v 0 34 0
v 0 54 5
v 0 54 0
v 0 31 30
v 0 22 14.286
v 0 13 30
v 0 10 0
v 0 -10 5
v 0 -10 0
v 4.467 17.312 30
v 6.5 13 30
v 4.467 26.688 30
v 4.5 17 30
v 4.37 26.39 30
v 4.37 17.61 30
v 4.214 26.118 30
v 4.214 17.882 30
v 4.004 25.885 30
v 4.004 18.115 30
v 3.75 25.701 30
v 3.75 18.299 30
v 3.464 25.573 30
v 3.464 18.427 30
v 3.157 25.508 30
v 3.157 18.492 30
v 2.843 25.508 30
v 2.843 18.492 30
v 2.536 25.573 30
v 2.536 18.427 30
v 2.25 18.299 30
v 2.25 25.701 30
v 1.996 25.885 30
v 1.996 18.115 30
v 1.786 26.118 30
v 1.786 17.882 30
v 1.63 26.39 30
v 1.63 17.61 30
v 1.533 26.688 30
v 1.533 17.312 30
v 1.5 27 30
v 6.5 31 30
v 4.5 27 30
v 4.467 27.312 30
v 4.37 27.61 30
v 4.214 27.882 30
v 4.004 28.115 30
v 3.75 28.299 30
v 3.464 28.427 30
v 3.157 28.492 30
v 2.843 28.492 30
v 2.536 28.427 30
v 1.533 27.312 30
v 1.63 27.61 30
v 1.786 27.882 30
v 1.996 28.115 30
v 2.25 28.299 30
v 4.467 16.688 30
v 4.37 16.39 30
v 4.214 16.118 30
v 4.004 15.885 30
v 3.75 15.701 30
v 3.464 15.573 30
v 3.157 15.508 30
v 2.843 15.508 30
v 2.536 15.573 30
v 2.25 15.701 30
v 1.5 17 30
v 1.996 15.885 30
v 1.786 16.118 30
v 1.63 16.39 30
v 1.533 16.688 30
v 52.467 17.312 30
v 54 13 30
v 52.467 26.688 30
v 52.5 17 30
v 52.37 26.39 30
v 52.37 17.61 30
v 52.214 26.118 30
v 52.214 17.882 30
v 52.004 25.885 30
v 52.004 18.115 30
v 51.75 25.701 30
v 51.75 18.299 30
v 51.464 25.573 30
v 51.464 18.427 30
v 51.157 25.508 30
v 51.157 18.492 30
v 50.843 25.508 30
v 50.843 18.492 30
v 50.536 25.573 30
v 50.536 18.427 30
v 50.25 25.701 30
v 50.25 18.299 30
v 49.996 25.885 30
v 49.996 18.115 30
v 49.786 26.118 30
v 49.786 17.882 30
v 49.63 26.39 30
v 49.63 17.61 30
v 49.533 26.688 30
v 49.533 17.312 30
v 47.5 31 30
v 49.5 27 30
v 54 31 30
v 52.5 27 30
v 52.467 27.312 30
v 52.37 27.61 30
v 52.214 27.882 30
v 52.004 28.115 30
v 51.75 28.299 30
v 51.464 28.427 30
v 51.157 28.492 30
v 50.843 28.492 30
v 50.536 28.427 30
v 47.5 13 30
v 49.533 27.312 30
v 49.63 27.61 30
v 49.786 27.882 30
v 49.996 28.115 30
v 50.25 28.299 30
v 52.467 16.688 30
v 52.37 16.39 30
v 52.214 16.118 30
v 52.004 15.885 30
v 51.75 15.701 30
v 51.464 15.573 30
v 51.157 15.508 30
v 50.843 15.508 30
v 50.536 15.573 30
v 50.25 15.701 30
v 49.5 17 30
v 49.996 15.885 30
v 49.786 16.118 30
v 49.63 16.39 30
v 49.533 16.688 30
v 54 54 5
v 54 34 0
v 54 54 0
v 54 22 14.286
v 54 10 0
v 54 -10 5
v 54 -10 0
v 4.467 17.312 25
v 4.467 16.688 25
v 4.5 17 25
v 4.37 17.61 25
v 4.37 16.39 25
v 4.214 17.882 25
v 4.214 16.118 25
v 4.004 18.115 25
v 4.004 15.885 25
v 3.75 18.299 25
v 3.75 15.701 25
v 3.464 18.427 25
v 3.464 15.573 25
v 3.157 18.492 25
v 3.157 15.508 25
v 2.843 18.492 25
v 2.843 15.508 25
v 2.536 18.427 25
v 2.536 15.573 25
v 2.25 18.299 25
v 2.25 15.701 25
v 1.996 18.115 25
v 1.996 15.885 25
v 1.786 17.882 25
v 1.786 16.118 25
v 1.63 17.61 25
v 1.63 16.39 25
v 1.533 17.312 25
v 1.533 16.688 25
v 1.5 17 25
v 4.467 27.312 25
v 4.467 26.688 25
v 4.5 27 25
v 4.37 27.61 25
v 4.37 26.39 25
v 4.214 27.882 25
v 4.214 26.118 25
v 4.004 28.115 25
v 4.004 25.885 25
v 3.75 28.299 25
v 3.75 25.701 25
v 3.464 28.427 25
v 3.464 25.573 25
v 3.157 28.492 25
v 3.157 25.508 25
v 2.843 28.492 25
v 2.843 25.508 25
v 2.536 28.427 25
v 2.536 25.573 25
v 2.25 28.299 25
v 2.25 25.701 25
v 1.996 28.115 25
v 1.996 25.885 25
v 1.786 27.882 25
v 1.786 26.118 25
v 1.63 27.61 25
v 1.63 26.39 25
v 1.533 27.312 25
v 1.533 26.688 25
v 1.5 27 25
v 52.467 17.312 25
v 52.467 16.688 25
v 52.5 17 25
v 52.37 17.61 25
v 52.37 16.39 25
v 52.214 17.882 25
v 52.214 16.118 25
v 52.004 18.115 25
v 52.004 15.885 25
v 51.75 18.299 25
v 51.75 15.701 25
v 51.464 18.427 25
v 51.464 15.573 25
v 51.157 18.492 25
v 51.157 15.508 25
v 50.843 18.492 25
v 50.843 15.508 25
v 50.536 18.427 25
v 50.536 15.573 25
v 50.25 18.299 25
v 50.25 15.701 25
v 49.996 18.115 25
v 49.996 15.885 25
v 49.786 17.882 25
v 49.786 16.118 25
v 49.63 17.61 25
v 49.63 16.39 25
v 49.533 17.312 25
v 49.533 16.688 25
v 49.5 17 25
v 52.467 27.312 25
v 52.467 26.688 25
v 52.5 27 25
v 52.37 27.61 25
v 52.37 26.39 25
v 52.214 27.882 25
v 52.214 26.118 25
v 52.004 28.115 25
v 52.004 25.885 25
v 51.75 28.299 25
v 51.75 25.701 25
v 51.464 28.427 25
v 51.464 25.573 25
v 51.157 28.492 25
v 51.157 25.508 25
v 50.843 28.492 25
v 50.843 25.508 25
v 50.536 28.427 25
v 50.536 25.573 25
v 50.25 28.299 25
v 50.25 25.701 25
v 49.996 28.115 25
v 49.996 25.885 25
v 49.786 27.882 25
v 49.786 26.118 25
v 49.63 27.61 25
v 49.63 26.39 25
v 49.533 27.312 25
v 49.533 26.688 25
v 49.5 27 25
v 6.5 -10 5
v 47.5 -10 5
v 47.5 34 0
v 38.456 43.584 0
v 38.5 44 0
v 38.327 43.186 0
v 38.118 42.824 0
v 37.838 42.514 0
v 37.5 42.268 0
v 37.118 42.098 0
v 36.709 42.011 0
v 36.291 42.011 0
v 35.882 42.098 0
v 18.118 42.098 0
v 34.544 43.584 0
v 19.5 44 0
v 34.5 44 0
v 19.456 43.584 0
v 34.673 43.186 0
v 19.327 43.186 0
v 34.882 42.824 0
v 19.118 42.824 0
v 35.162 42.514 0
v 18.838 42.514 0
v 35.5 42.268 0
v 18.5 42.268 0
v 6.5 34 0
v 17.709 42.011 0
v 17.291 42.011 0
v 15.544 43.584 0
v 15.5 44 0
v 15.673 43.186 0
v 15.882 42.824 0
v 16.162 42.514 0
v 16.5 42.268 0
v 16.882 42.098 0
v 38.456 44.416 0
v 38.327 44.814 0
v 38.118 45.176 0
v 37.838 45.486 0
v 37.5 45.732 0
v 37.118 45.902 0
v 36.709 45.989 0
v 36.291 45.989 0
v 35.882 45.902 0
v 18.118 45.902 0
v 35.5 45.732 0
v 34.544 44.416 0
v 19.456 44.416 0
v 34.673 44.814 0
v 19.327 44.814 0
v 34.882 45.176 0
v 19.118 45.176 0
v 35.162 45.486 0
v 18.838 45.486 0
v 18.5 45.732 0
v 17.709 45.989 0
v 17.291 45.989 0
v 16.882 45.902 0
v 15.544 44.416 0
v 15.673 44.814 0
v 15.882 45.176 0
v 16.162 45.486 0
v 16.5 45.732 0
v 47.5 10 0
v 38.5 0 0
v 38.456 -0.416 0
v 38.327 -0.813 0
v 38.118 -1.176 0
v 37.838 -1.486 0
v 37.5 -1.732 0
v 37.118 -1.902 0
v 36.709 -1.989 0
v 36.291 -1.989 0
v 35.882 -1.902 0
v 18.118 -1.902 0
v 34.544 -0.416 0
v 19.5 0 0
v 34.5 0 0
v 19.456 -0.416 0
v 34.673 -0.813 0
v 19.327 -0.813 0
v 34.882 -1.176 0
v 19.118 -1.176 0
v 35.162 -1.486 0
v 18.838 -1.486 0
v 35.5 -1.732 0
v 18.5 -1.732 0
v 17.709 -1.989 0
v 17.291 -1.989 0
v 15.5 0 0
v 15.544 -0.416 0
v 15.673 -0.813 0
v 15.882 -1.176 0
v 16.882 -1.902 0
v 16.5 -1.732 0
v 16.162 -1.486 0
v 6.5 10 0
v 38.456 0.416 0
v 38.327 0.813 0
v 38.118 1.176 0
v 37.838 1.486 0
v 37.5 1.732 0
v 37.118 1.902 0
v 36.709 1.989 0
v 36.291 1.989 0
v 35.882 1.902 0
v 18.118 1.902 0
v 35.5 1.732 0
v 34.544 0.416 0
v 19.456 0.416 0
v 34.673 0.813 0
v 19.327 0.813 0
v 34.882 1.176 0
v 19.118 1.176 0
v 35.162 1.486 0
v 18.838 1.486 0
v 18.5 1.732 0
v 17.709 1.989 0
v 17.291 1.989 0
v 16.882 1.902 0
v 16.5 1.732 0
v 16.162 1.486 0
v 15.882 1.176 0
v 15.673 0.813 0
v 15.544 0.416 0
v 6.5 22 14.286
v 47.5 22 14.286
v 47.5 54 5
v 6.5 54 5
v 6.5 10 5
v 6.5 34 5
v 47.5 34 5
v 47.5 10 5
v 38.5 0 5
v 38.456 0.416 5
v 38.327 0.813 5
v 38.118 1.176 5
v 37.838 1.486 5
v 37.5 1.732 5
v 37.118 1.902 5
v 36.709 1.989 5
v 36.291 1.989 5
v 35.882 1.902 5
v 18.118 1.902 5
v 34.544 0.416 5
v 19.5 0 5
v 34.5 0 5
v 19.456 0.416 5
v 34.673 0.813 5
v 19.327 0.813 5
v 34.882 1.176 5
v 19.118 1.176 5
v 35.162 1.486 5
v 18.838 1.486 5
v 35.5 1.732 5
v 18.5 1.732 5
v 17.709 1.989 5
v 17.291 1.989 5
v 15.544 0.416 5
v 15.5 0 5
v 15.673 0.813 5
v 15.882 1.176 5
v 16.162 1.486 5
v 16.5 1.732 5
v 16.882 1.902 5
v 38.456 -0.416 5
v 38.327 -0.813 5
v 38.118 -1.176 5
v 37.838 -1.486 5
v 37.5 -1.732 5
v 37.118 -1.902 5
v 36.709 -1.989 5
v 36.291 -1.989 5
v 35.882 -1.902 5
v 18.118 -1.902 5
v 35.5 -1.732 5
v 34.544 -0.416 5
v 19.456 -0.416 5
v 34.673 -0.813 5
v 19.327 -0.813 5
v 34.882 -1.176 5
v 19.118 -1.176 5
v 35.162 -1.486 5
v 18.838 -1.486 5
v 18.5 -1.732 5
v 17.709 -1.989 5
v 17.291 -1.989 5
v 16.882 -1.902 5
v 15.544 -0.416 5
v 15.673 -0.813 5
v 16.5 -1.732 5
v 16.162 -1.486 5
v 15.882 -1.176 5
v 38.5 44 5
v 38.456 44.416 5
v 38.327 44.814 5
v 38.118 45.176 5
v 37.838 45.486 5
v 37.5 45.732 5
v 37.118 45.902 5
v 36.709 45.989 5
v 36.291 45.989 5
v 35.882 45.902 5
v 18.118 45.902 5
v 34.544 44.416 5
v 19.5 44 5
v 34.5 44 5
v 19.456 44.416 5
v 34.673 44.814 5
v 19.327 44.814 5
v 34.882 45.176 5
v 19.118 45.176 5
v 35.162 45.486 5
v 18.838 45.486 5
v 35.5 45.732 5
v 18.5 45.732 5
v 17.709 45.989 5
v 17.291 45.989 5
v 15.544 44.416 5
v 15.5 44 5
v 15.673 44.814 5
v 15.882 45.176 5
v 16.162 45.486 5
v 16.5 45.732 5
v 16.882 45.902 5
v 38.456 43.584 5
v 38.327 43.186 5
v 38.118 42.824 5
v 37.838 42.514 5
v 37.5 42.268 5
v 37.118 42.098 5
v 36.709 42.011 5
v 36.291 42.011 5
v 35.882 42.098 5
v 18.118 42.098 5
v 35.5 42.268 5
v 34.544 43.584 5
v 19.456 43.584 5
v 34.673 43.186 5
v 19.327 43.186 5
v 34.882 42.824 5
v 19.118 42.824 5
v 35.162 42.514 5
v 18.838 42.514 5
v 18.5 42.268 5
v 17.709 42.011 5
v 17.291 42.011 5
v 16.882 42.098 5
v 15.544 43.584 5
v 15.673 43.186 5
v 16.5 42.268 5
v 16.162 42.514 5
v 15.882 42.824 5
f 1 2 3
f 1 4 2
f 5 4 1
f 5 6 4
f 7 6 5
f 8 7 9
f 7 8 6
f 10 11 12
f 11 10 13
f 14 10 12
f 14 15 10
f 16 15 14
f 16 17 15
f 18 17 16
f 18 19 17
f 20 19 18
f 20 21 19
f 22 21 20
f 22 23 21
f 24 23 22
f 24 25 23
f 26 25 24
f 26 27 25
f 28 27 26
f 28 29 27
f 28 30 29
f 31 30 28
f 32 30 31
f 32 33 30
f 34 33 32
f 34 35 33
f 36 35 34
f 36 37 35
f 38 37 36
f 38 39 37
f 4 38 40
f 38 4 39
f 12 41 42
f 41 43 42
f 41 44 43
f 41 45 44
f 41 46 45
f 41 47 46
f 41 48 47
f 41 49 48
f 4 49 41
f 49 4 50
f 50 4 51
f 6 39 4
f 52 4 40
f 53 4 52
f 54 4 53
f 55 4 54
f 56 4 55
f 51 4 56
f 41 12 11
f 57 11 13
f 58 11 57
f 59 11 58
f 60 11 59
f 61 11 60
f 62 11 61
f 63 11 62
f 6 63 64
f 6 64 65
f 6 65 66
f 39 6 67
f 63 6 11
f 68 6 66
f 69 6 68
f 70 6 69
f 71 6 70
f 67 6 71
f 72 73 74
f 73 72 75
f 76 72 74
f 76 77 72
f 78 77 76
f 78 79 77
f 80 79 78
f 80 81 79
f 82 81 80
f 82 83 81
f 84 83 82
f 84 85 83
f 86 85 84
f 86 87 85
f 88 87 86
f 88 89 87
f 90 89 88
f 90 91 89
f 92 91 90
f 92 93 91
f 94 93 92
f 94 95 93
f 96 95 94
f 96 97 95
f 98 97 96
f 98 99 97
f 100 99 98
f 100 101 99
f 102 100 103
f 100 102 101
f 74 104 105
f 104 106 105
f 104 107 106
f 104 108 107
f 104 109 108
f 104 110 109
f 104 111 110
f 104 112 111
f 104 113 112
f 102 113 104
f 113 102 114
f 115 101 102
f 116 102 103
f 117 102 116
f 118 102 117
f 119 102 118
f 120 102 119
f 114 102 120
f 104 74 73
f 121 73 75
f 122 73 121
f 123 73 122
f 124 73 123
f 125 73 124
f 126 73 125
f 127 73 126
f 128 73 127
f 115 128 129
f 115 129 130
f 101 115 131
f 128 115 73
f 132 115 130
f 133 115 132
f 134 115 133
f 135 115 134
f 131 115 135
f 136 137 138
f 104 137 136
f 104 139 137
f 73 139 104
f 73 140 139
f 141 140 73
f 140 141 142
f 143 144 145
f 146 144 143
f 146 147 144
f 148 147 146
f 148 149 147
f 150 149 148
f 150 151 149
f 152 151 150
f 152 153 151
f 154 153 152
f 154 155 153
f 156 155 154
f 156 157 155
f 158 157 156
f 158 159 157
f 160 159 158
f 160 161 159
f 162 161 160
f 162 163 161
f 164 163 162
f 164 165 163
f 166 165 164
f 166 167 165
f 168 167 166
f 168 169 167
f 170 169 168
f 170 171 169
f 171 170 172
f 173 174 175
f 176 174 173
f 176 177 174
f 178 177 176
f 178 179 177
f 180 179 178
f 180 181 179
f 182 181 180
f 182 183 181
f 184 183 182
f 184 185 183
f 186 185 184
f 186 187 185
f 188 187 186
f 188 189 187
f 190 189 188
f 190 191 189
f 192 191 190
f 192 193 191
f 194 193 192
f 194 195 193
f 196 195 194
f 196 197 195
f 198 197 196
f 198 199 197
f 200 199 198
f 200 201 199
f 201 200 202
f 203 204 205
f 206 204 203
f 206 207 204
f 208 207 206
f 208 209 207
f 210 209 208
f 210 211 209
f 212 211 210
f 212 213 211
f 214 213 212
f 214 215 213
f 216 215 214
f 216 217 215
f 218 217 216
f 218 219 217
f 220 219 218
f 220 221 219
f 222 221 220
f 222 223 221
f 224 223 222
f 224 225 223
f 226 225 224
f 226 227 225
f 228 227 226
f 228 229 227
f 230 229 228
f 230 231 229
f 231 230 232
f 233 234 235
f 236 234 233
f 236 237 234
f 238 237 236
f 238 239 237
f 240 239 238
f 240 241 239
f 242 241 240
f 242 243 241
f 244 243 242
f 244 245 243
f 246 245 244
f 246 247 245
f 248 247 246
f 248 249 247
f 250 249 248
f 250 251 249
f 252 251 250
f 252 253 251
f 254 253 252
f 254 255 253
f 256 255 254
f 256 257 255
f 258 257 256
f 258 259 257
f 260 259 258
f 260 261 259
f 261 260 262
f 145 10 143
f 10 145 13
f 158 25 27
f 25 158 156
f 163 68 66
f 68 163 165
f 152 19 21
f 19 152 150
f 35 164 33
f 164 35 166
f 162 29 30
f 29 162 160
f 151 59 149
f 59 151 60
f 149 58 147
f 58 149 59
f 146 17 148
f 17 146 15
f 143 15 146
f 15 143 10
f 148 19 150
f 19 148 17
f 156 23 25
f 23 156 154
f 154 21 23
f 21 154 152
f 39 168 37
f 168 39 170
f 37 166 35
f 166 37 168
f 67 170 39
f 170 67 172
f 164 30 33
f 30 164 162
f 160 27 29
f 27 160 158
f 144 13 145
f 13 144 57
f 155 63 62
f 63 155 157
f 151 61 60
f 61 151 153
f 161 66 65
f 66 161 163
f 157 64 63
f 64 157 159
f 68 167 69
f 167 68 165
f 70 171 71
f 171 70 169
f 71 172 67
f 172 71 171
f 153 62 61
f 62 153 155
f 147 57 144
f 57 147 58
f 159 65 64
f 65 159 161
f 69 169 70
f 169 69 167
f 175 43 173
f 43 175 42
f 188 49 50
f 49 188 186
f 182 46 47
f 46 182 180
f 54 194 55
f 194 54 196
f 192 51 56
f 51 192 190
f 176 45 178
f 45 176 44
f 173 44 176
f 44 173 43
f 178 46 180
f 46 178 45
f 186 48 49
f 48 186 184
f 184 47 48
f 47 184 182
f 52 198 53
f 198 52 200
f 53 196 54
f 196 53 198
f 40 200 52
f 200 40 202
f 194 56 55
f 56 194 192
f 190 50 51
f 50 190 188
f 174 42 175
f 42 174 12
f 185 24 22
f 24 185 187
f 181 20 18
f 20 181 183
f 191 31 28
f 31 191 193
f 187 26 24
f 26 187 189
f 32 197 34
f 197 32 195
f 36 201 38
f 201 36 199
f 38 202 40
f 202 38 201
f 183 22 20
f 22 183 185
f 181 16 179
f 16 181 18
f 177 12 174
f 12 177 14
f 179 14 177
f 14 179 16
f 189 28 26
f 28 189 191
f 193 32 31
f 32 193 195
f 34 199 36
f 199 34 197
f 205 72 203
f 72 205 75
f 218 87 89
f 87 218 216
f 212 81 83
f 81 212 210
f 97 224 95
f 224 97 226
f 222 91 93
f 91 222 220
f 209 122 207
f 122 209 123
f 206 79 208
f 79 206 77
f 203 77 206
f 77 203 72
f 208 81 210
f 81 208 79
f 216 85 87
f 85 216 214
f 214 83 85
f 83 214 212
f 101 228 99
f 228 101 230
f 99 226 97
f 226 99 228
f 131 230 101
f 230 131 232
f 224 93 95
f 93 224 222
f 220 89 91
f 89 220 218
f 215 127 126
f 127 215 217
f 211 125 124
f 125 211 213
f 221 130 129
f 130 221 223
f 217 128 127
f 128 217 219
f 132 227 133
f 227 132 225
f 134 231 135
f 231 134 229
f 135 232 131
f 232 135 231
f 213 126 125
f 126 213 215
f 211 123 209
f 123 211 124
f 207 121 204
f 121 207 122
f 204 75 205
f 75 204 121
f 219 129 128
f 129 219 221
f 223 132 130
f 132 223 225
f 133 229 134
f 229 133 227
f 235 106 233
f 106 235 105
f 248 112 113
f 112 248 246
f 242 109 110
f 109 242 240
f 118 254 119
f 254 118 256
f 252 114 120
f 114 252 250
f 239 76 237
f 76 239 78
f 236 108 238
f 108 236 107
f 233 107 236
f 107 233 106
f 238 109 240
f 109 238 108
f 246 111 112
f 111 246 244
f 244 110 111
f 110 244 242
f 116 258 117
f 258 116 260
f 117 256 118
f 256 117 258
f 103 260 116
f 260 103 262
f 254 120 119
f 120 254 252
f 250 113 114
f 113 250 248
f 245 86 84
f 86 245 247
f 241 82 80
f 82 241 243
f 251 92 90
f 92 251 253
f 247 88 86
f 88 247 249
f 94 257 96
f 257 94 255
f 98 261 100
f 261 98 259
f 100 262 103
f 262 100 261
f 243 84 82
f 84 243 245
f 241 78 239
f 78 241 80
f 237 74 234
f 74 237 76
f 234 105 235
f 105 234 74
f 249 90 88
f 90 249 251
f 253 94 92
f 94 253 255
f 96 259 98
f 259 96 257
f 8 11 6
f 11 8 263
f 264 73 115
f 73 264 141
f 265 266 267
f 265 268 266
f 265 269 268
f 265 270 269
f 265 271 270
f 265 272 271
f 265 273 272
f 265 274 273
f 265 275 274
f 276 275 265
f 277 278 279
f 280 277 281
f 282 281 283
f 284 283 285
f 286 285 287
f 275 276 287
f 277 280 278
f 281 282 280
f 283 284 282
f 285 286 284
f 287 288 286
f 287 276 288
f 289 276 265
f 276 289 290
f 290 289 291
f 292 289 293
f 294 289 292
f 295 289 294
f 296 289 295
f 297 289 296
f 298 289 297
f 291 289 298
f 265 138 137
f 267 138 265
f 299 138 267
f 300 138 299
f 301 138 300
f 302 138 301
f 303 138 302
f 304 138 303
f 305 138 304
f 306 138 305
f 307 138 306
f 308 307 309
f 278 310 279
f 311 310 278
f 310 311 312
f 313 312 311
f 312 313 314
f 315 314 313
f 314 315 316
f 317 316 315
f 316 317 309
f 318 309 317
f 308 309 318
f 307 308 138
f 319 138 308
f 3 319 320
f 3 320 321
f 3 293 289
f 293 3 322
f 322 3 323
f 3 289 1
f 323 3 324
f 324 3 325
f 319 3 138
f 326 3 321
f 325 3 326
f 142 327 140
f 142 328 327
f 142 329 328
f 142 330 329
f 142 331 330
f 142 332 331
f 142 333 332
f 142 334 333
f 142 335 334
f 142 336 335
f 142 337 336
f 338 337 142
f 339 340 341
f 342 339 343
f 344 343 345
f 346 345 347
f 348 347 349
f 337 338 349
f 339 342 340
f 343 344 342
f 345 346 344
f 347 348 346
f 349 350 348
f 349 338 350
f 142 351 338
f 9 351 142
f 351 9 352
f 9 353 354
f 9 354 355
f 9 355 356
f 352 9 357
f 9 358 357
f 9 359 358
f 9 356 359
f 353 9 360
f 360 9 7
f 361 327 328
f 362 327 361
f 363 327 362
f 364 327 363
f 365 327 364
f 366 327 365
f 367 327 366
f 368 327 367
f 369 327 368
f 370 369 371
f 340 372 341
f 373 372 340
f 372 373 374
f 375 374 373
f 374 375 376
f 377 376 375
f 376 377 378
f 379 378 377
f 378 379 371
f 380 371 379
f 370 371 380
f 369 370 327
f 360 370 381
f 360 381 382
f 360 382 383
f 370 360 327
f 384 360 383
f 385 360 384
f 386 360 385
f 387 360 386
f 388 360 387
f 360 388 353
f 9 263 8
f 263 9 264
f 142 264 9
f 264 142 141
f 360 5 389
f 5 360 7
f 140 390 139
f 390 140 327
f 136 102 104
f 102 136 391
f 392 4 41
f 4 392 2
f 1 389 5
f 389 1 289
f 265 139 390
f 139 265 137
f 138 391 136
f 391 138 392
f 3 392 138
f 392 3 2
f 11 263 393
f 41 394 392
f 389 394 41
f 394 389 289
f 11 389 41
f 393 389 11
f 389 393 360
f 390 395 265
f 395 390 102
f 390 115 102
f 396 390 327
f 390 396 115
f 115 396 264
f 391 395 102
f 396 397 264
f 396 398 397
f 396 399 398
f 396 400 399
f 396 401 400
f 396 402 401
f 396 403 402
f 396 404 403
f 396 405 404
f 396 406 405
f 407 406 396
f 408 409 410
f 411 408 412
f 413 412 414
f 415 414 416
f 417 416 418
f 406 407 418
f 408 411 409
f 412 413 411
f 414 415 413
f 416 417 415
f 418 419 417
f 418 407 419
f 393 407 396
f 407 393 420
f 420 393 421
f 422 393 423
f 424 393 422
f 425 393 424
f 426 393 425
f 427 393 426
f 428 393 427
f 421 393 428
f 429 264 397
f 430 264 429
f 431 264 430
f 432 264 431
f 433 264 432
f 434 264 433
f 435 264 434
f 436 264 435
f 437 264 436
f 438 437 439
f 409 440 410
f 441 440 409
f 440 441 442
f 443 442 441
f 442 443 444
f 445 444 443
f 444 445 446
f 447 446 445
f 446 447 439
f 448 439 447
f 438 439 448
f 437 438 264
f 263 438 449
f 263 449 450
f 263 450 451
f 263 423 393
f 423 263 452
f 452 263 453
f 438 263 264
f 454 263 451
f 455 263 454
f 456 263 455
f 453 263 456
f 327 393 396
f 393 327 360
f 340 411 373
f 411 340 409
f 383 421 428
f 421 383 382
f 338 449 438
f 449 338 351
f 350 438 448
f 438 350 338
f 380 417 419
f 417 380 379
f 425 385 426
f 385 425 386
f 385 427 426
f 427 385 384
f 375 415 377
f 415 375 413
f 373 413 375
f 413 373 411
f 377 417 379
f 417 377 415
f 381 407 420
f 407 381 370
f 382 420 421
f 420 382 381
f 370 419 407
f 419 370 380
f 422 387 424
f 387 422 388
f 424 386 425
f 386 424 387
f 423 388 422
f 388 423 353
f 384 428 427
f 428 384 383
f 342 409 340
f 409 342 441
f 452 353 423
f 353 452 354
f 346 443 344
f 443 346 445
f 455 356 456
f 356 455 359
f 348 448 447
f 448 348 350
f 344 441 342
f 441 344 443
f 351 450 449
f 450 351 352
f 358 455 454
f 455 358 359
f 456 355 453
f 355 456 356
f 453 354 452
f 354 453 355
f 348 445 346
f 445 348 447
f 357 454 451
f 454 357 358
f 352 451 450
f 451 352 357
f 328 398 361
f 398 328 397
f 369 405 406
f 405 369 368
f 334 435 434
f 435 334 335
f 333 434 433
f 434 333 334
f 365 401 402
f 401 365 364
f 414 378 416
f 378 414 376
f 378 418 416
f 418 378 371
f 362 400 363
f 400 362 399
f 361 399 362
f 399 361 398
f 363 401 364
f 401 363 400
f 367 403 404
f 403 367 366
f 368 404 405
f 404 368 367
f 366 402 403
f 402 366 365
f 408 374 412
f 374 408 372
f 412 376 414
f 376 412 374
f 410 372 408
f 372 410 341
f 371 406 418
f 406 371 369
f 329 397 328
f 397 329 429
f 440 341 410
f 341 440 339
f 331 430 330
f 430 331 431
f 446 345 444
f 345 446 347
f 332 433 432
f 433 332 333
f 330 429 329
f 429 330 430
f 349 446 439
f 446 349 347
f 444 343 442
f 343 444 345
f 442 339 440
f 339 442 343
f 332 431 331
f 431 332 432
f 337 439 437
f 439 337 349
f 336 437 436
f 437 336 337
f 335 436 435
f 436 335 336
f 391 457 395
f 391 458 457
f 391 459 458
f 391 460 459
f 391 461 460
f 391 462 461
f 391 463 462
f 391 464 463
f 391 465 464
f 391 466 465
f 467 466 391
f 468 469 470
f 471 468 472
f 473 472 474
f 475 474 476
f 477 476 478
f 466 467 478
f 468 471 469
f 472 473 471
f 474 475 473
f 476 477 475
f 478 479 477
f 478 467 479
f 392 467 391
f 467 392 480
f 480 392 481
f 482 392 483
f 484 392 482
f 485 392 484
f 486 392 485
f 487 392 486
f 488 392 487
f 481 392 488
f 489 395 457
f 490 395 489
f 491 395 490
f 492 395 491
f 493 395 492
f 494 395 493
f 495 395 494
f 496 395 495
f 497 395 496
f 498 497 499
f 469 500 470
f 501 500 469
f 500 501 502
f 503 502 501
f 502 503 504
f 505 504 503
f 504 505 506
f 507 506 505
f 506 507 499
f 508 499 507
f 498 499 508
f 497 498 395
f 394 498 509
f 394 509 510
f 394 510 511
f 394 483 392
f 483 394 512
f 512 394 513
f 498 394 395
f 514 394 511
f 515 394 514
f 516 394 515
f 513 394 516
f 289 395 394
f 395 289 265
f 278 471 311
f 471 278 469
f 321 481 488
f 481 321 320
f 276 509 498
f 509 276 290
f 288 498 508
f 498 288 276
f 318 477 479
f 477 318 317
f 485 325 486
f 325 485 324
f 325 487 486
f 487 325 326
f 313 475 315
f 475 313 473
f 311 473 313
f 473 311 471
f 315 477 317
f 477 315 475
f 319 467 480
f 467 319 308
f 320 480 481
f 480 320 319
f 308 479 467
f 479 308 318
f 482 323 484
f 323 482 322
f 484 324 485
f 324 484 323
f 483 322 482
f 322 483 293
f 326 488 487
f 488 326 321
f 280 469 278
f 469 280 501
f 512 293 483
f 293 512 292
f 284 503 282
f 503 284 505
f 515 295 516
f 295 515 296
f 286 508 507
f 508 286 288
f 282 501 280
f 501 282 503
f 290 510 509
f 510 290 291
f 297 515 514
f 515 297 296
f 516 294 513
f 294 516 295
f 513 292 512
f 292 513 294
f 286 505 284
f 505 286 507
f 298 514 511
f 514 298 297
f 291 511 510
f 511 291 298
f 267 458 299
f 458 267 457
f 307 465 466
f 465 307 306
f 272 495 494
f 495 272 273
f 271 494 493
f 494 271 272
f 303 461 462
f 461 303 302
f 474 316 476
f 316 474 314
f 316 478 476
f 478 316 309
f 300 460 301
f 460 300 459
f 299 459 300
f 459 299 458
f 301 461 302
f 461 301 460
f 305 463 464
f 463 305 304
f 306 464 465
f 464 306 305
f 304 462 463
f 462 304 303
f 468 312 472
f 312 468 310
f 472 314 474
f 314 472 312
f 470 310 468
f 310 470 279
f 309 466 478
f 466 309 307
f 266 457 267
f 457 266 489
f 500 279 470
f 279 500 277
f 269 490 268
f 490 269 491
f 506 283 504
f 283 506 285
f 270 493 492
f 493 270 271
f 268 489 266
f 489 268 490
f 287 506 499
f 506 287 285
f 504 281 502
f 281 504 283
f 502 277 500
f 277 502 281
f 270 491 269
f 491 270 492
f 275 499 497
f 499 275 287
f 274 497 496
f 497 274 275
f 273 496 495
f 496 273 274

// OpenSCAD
//general
$fn = 30;                        //convexity of general curved faces
thickness = 5;                   //thickness of the flat parts
length = 54;

//bottom plate (feet)
plate_hole_diameter = 4;            //diameter of holes in metal bottom plate
plate_hole_width = 19;             //shortest distance between the pairs of holes in plate
plate_hole_length = 44;            //long distance between the pairs of holes in botto
plate_feet_width = 20;             //width of the pads that connect the short distanced screws
plate_feet_length = length;            //length of the feet
//servo pad
servo_hole_diameter = 3;           //diamter of holes for servo attachment
servo_hole_width = 10;             //width of short distance between hole so same side of servo
servo_hole_length = 48;            //length of long distance between holes on either side of servo
servo_pad_width = 18;              //width of servo pad
servo_pad_length = length;         //length of servo pad
servo_pad_height = 25;             //height of servo pad
servo_length = 41;

module foot(){
   translate([0, plate_feet_width/-2, 0])
   difference(){
      cube([plate_feet_length, plate_feet_width, thickness]);
      translate([plate_feet_length/2 - plate_hole_width/2, plate_feet_width/2, 0])
      cylinder(h=thickness, d=plate_hole_diameter);
      translate([plate_feet_length/2 + plate_hole_width/2, plate_feet_width/2, 0])
      cylinder(h=thickness, d=plate_hole_diameter);
   }
}


module servo_pad(){
   difference(){
      cube([servo_pad_length, servo_pad_width, thickness]);
      translate([servo_pad_length/2 - servo_hole_length/2, servo_pad_width/2 - servo_hole_width/2, 0])
      cylinder(d = servo_hole_diameter, h = thickness);
      translate([servo_pad_length/2 - servo_hole_length/2, servo_pad_width/2 + servo_hole_width/2, 0])
      cylinder(d = servo_hole_diameter, h = thickness);
      translate([servo_pad_length/2 + servo_hole_length/2, servo_pad_width/2 - servo_hole_width/2, 0])
      cylinder(d = servo_hole_diameter, h = thickness);
      translate([servo_pad_length/2 + servo_hole_length/2, servo_pad_width/2 + servo_hole_width/2, 0])
      cylinder(d = servo_hole_diameter, h = thickness);
   }   
}

module wall(){
   hull(){
      translate([0,plate_feet_width/-2, 0])
      cube([plate_feet_length, plate_feet_width, thickness]);
      translate([0,plate_hole_length/2 - servo_pad_width/2, servo_pad_height])
      cube([servo_pad_length, servo_pad_width, thickness]);
   }  
}

module base(){
    difference(){
       union(){
          difference(){
             union(){
                wall();
                translate([0, plate_hole_length, 0])
                mirror([0,1,0])
                wall();
             }
             translate([0, plate_hole_length/2 - servo_pad_width/2, servo_pad_height])
             cube([servo_pad_length, servo_pad_width, thickness]);
          }
          translate([0, plate_hole_length/2 - servo_pad_width/2, servo_pad_height])
          servo_pad();
       }
       translate([(length - servo_length) / 2 ,-0.5 * plate_hole_length, 0])
       cube([servo_length, plate_hole_length*2, servo_pad_height * 2]);   
    }

    foot();
    translate([0, plate_hole_length, 0])
    foot();
}

base();
